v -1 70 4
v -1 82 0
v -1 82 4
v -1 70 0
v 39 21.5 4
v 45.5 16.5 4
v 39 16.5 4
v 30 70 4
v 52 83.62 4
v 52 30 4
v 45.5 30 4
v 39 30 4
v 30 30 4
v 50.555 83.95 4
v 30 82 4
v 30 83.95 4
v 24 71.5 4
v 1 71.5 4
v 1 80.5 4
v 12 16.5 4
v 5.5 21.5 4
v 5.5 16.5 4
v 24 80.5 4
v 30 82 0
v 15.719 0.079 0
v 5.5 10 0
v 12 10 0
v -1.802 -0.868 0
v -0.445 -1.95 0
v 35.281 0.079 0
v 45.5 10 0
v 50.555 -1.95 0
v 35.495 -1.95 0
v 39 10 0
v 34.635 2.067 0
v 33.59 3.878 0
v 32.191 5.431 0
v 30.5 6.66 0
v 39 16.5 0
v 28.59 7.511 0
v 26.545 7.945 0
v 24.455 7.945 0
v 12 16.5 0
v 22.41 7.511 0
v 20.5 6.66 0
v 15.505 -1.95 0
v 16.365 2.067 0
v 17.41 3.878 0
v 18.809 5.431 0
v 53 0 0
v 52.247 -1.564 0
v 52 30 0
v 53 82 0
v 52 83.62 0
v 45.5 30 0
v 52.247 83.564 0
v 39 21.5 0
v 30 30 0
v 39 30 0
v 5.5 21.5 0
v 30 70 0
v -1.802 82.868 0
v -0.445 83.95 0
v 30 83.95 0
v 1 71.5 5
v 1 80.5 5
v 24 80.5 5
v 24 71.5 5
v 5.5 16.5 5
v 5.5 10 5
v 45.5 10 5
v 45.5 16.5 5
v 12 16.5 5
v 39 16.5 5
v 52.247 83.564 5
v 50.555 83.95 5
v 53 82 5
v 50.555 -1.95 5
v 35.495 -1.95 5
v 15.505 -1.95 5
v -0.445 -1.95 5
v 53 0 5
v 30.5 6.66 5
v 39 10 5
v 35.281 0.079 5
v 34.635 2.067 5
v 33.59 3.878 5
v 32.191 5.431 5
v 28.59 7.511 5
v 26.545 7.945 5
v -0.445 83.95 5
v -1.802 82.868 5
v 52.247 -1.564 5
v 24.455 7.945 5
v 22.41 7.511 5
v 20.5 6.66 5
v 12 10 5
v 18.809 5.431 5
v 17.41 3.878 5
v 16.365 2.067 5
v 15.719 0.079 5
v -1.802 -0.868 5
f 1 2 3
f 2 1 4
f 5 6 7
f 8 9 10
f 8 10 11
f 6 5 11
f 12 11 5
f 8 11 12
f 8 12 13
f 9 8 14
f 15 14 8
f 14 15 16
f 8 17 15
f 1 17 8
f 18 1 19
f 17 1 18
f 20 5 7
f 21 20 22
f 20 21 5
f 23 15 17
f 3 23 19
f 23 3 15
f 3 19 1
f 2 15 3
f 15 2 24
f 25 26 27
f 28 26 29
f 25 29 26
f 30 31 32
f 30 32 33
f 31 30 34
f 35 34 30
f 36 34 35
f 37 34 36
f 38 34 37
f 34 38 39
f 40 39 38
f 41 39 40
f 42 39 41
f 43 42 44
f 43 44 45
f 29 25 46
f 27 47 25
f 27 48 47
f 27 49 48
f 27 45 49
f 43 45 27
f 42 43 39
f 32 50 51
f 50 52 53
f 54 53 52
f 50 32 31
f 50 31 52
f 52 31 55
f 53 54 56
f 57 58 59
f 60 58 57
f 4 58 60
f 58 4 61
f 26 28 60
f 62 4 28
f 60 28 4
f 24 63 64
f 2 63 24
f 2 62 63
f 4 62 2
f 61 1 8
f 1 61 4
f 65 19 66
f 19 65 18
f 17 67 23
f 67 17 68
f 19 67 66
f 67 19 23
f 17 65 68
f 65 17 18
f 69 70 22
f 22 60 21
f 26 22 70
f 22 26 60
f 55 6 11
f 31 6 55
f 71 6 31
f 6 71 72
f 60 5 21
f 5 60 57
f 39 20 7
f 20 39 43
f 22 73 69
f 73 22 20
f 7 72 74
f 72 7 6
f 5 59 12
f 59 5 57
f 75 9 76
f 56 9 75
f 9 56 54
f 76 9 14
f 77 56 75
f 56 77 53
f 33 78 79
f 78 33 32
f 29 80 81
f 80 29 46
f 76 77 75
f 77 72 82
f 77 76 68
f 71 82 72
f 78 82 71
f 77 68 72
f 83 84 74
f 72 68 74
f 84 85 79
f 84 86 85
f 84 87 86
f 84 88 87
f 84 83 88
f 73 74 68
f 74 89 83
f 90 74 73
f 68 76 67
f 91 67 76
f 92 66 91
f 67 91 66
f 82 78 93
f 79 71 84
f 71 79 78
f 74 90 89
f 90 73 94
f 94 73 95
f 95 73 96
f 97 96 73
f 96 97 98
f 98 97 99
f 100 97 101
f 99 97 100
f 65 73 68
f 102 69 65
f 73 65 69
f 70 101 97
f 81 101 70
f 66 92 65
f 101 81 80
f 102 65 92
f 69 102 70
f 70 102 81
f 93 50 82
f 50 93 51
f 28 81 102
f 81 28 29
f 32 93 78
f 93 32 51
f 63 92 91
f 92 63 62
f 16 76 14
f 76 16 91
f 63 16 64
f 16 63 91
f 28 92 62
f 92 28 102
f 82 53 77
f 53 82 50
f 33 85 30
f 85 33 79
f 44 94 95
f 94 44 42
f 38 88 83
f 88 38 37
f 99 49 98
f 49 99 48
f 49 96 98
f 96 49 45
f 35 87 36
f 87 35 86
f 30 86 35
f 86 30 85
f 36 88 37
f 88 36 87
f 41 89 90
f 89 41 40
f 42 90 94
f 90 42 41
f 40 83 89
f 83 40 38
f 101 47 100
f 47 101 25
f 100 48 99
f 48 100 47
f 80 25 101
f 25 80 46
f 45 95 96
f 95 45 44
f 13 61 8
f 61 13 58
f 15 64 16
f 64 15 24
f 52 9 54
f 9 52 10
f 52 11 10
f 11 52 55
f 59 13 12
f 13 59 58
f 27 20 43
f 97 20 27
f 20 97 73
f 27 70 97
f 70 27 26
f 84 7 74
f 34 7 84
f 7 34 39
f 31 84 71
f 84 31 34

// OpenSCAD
// 55x86x.8mm

difference () {
    minkowski() {
        cylinder(h=2.5, r=2);
        cube([51, 82, 2.5]);
    }

    translate([25.5, -2, -1]) {
        cylinder(h=10, d=20);
    }
    // 86 / 2 43 (-11) 32
    translate([30, 30, 0]) {
        color("red") {
            cube([22,54,4]);
        }
    }
    
    
// i2c screen
// 30.00 mm × 12.00 mm × 2.00 mm 
    translate([-1, 70, 0]) {
        cube([32, 12, 4]);
        translate([2,1.5,4]) {
            cube([23,9,4]);
        }
    }
    
    // buttons 6.0 x 6.2 tall legs down
    // 4.0 tall 5 tall to button 3.4diam button
    translate([5.5, 10, 0]) {
        cube([6.5, 6.5, 5]);
    }
    
    translate([55-5.5-6.5-4, 10, 0]) {
        cube([6.5, 6.5, 5]);
    }
    
    // wiring gaps for buttons
    translate([5.5, 16.5, 0]) {
        cube([40, 5, 4]);
        translate([40-6.5, 0, 0]) {
            cube([6.5, 15, 4]);
        }
    }
}
